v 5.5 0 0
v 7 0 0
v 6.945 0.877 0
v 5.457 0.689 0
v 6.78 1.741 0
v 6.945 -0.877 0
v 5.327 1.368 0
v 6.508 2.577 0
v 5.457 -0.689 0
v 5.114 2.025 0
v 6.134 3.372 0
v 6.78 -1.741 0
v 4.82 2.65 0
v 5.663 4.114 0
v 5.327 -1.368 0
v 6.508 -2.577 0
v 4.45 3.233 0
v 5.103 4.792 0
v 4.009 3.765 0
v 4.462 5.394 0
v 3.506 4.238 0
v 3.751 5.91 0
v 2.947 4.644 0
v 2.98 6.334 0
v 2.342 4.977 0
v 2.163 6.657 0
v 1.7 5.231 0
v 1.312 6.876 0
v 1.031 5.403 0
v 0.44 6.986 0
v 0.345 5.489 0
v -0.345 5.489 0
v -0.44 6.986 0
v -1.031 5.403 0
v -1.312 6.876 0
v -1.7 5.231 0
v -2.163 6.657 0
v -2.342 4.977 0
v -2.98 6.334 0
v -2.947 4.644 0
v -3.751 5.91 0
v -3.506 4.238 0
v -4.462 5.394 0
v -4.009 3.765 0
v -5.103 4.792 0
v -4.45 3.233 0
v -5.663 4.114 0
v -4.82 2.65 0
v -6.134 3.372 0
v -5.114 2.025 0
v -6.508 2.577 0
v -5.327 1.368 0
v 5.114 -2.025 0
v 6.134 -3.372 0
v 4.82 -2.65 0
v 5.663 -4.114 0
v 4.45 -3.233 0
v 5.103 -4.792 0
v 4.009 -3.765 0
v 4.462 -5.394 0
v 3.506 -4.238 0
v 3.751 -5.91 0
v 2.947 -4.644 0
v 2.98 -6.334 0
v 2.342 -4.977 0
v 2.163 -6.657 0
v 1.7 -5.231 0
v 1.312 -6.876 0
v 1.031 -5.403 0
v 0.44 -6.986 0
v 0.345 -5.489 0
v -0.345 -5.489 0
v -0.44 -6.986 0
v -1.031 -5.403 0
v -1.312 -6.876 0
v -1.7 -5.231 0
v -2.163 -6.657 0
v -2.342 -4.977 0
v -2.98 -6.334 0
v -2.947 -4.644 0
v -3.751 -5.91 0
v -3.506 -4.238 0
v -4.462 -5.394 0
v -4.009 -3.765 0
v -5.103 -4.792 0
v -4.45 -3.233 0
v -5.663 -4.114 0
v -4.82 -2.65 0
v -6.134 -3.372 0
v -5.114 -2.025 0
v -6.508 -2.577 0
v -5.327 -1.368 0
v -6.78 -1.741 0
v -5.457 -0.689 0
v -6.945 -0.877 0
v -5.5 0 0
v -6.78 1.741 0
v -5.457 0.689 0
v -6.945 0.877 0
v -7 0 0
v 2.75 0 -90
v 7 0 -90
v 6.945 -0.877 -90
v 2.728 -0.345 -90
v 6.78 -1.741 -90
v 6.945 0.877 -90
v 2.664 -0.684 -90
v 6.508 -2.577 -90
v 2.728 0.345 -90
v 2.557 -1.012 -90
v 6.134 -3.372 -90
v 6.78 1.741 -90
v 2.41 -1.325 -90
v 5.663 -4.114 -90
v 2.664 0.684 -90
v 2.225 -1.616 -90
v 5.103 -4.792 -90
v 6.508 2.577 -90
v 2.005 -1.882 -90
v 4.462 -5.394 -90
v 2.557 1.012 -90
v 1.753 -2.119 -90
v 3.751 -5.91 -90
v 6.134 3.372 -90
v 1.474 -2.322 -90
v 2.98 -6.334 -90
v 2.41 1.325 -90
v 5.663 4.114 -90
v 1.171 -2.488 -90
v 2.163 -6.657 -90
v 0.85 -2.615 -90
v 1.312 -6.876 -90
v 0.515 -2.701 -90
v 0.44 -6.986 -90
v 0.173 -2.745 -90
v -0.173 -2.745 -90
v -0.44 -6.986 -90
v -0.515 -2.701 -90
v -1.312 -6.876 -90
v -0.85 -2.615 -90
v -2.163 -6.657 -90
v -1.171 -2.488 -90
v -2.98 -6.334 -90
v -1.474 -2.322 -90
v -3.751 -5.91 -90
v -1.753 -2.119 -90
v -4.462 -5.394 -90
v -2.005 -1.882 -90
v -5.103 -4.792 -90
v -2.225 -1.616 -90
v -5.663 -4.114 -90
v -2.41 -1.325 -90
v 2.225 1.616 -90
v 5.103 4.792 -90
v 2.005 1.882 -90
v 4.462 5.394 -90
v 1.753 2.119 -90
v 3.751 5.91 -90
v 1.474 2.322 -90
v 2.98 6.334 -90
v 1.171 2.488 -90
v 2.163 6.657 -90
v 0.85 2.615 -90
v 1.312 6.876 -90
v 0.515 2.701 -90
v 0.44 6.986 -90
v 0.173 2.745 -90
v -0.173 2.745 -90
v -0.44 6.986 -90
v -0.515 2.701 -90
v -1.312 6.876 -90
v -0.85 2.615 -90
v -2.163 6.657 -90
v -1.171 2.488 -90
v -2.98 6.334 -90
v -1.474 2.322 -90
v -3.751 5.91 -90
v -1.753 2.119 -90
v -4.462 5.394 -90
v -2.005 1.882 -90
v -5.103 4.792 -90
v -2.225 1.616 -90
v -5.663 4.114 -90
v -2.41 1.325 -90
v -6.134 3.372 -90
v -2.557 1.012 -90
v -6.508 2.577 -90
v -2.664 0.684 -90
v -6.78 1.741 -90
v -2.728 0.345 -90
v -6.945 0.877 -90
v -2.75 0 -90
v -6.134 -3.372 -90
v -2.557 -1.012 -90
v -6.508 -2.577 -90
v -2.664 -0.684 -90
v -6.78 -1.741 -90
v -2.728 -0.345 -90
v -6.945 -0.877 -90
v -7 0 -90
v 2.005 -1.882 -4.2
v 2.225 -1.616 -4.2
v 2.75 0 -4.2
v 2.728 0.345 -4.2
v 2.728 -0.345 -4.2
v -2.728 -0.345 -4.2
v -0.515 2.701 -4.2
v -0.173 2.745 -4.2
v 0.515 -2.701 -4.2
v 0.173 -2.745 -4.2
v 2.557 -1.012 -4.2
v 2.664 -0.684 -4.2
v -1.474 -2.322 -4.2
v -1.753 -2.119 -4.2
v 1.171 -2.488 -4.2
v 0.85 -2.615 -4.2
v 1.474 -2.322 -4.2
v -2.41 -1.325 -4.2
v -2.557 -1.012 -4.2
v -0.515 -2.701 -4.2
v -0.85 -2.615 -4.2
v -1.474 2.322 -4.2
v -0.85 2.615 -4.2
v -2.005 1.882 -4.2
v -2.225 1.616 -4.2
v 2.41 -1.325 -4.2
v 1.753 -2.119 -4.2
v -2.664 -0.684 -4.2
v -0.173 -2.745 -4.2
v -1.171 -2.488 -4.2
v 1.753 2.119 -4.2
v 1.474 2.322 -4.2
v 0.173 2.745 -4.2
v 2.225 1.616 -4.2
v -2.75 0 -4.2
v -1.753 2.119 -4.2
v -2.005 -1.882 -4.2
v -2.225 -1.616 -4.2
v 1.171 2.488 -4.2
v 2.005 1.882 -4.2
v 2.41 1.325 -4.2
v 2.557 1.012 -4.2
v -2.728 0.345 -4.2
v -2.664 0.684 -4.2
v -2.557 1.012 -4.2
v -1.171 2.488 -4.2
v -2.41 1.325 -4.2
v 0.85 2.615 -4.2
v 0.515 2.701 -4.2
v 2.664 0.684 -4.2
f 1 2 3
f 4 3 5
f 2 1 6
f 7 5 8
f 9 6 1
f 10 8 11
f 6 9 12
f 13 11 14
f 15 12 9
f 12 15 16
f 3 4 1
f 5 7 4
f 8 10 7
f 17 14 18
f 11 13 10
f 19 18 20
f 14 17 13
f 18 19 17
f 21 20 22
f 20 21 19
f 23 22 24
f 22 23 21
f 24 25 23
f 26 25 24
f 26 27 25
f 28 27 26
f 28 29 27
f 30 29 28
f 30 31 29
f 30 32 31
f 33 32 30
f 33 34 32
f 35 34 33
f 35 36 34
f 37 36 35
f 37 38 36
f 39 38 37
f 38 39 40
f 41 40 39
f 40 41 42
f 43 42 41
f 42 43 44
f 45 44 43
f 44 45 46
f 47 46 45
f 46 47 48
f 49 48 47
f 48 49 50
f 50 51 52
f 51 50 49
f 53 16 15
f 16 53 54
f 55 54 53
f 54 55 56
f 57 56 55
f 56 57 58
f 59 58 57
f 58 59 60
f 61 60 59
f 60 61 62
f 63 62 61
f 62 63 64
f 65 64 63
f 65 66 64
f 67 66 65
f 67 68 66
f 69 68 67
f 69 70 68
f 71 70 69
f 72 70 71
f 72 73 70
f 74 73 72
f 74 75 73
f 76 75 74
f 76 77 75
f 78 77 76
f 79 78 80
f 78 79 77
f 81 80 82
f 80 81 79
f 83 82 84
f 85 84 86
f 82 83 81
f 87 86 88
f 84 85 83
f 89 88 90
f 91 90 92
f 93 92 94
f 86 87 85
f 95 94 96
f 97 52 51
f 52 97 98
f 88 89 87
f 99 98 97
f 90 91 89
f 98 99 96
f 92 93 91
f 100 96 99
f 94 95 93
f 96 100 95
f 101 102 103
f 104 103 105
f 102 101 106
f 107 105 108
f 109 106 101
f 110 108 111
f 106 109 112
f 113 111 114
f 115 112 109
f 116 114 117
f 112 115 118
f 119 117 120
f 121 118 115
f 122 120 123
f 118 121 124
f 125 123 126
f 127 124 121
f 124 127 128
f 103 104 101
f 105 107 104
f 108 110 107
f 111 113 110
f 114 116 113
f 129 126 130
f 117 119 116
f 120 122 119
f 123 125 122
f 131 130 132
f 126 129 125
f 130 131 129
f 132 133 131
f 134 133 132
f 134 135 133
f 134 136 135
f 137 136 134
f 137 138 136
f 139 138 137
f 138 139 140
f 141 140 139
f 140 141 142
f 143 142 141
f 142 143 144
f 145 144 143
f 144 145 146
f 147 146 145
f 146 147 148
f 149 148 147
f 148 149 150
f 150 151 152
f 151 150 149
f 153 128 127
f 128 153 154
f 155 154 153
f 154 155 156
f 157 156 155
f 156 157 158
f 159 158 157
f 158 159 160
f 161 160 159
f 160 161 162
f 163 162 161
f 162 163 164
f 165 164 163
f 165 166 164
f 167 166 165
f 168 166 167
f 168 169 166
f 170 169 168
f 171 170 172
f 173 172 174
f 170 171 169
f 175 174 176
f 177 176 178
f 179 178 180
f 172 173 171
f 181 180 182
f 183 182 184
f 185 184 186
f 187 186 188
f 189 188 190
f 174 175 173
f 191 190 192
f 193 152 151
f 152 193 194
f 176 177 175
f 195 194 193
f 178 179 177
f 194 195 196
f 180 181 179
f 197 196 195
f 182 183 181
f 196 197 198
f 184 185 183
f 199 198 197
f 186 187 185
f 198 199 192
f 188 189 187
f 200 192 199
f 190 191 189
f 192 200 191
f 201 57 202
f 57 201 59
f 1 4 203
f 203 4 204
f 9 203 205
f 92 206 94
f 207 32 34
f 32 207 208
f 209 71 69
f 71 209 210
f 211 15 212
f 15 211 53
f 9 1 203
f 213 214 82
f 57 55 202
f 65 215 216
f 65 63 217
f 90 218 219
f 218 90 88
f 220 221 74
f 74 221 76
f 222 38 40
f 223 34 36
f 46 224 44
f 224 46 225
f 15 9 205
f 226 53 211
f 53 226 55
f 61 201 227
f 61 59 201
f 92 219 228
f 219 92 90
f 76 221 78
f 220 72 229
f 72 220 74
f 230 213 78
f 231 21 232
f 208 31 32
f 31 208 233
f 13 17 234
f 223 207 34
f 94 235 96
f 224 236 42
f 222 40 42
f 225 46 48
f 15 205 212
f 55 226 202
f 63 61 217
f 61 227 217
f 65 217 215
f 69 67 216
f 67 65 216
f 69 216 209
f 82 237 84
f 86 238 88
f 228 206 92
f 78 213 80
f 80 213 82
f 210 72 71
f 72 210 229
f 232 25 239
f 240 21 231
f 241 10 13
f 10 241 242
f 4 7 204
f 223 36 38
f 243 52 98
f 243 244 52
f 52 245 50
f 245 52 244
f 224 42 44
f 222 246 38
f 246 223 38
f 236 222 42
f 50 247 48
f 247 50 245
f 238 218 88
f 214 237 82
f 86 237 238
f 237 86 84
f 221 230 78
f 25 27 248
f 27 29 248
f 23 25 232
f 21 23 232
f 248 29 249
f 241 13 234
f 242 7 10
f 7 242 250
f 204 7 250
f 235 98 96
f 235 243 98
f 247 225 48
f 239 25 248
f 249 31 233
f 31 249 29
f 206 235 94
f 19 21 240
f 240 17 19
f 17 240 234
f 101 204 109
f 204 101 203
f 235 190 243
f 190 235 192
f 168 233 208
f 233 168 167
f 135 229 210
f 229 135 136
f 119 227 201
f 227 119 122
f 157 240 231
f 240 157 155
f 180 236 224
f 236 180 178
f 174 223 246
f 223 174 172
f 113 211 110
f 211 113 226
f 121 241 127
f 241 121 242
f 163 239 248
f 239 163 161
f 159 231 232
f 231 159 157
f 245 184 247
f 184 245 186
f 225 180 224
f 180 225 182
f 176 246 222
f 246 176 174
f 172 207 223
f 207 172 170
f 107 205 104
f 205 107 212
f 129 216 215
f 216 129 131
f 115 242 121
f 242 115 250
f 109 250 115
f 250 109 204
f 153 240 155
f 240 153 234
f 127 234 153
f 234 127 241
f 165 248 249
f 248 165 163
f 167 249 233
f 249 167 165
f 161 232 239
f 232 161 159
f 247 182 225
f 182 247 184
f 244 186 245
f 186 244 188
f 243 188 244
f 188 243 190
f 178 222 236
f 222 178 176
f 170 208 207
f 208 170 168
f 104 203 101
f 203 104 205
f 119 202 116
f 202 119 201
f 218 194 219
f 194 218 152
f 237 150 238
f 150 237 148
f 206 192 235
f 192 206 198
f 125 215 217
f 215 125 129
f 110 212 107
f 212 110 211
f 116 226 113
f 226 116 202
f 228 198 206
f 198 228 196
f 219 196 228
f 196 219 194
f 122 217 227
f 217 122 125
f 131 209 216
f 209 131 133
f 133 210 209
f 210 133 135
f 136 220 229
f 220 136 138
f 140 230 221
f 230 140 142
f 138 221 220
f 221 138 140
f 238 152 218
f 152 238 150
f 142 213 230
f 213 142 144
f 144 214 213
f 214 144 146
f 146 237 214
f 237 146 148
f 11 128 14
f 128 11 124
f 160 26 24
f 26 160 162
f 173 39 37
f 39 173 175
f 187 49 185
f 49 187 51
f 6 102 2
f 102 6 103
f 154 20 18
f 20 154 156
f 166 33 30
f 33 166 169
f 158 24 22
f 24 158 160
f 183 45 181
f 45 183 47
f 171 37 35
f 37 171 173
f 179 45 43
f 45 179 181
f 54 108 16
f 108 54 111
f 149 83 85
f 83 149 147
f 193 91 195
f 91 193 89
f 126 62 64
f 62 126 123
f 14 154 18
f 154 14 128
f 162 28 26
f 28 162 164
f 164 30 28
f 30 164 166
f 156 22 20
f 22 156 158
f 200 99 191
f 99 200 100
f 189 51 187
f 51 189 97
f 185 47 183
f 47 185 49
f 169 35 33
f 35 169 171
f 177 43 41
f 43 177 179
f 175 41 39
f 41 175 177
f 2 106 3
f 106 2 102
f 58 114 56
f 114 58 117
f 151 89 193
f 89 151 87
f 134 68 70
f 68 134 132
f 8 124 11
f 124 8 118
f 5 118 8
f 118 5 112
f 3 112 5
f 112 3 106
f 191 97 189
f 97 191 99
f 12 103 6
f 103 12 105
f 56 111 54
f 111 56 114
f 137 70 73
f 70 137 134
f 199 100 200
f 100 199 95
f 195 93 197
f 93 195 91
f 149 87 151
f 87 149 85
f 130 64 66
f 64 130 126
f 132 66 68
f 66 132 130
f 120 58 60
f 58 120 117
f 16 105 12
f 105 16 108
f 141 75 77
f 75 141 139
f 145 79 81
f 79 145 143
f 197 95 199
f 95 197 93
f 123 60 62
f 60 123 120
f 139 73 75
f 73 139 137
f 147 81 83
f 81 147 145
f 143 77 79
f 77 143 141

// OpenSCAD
$fn = 50;


difference() {
	union() {
		translate(v = [0, 0, -90.0000000000]) {
			cylinder(h = 90, r = 7.0000000000);
		}
	}
	union() {
		translate(v = [0, 0, 0]) {
			rotate(a = [0, 0, 0]) {
				difference() {
					union() {
						#translate(v = [0, 0, -90.0000000000]) {
							cylinder(h = 90, r = 2.2500000000);
						}
						#translate(v = [0, 0, -4.2000000000]) {
							cylinder(h = 4.2000000000, r1 = 2.7500000000, r2 = 5.5000000000);
						}
						#translate(v = [0, 0, -90.0000000000]) {
							cylinder(h = 90, r = 2.7500000000);
						}
						#translate(v = [0, 0, -90.0000000000]) {
							cylinder(h = 90, r = 2.2500000000);
						}
					}
					union();
				}
			}
		}
	}
}
